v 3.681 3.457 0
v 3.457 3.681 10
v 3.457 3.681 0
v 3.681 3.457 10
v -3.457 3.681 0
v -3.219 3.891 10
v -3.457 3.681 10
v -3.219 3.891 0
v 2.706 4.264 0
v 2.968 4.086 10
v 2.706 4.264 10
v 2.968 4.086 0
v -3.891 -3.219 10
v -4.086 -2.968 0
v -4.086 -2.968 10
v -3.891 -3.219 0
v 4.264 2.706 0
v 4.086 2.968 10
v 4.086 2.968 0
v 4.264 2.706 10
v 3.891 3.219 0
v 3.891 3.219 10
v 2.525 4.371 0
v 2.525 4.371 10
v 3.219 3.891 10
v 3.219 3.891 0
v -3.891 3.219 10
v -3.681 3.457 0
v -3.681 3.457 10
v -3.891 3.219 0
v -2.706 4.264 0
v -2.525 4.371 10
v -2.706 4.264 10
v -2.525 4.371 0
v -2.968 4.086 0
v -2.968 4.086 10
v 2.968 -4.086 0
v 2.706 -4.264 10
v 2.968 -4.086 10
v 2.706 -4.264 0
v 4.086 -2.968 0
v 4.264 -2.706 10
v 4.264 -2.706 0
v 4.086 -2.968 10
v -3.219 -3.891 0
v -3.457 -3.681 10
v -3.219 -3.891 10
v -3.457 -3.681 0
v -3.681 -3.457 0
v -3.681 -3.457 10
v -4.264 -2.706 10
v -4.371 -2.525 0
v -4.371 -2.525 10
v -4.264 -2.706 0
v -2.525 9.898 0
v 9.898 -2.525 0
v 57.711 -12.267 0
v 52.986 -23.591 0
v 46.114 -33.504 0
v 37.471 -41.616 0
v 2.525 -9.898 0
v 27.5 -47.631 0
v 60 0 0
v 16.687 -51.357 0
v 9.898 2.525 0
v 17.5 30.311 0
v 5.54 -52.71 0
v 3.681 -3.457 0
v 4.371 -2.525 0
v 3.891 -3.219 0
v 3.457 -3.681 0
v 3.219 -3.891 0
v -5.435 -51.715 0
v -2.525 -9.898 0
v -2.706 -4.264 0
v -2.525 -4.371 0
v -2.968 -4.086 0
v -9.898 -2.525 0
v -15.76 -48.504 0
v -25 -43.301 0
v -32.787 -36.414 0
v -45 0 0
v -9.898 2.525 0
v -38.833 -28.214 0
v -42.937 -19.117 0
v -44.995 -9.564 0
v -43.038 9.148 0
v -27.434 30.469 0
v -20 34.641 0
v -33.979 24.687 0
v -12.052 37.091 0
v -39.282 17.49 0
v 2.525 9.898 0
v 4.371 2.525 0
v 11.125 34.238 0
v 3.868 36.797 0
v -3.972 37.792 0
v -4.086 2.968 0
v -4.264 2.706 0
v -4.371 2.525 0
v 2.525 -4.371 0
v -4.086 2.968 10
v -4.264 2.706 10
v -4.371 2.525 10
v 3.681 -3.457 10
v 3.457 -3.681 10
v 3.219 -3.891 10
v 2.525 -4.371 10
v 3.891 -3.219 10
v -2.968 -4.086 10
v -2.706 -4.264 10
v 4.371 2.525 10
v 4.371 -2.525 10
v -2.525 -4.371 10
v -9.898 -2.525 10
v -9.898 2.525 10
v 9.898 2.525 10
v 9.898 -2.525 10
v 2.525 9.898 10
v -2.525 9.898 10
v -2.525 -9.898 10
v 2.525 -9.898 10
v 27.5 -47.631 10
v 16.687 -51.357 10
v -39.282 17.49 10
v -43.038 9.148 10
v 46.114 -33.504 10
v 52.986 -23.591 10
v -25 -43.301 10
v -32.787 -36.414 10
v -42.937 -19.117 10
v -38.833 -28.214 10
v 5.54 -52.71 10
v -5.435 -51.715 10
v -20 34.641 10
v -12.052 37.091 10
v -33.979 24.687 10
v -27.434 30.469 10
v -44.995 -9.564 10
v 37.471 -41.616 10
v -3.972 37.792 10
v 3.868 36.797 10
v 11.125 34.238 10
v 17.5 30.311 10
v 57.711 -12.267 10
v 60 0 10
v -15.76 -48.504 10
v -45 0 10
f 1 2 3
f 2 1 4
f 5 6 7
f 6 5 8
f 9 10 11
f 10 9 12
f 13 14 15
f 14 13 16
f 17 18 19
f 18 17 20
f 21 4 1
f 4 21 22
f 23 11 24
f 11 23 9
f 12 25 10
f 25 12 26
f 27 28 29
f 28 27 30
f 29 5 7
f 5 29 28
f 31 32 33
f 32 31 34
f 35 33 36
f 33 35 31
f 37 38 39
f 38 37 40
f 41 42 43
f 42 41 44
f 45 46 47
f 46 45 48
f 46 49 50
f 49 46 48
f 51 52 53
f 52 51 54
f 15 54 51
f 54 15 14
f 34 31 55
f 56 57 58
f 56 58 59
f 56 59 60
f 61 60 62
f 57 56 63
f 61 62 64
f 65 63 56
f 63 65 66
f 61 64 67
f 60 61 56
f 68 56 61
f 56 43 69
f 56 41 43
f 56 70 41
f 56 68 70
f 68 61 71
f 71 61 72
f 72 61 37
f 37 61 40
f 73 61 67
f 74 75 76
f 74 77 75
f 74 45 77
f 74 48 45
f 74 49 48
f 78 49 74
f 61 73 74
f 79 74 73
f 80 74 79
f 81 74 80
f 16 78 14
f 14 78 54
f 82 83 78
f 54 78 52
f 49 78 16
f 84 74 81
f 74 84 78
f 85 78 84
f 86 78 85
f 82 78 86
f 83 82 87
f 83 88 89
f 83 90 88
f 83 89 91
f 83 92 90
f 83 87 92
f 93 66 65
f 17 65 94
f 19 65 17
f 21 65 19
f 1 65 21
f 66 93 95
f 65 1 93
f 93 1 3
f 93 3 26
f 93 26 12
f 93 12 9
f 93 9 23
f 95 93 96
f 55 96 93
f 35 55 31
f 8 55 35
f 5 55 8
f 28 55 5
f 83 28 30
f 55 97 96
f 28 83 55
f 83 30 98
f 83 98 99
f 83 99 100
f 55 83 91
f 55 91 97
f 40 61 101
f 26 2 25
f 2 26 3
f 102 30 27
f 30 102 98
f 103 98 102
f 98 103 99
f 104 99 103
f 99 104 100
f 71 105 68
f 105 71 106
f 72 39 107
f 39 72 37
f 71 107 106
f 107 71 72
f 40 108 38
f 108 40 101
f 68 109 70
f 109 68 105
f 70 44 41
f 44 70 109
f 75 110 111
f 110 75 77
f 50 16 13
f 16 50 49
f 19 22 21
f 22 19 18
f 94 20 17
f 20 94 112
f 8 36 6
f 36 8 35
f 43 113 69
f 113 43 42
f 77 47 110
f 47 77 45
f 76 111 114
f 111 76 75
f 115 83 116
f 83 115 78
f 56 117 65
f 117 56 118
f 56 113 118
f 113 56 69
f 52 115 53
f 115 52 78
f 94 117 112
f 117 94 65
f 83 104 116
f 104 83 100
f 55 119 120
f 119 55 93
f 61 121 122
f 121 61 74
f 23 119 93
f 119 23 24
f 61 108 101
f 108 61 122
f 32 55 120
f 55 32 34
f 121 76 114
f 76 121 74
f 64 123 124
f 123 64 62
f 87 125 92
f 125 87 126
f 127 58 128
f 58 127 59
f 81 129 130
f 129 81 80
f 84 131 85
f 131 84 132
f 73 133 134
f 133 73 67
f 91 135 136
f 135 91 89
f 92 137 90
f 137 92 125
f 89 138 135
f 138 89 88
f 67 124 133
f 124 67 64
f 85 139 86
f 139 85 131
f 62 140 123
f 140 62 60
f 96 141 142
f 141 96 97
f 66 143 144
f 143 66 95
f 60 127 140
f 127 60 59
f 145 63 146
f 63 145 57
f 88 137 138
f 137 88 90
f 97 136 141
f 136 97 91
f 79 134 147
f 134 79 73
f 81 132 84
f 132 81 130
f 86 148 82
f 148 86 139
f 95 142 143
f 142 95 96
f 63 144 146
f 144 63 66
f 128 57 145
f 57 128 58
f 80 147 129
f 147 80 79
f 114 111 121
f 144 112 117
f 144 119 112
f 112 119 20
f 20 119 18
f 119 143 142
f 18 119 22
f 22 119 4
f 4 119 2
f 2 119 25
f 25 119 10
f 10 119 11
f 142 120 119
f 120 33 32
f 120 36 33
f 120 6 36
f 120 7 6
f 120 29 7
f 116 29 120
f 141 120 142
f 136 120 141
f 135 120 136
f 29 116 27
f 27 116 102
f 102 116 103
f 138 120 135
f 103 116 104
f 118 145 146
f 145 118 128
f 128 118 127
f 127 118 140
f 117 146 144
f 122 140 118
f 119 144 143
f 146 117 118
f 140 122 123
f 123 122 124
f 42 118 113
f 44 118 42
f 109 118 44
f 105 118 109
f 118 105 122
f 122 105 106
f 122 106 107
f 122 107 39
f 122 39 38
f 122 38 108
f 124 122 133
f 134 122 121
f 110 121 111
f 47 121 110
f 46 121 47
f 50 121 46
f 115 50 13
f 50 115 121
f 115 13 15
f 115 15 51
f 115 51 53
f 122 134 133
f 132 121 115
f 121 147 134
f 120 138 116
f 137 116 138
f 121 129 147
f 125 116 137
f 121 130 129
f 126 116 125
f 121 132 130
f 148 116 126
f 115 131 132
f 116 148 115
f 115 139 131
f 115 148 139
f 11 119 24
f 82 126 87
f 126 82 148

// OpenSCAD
// file: lib/dogs.scad
$fn=100;


dogblock = [20,20,10];
//dog(dogblock, type="small");
//dog(dogblock, type="large");
//cornerdog(dogblock, type="small");
//cornerdog(dogblock, type="large");
//handle(dogblock[2], "small");
//handle(dogblock[2], "large");
//pressureplate(dogblock[2]);

//pressurespiral(5, 10, 15);
//pressurespiral2(dogblock[2], 10, 15);
//turnkeyspiral(dogblock[2],"large", 20, 10); //biggest one that can fit on the sides
//turnkeyspiral(dogblock[2],"large", 60, 30);
//turnkeyspiral(dogblock[2],"large", 40, 15);
//spiralhandle();

//turnkey (dogblock[2]*2, "small");
//turnkey (dogblock[2]*2, "large");


module spiralhandle() {
    height=5;
    difference() {
        hull() {
            cylinder(height, 15, 15);
            translate([55,0,0]) cylinder(height,d=15);
        }
        // scale it one percent so the key will certainly fit
        rotate([0,0,45]) scale([1.01,1.01,1.01]) turnkey(height, "large"); 
    }
    
}
//Handle to clamp the stock
//the outer circle isn't concentric to the center one (in the hole)
//by turning it we put pressure on the material. Due to friction it
//stays in place
//Turn them upside down and you can use them as a wedge to lock the
//stock in place.
//Todo:  must have the geometry wrong, as the pressure functionality
//doesn't work yet.  It can be used as a wedge though.
module handle(h, type) {
  //we use half of the height to allow the use of "pressure" plates
  //to offer more flexibility
    
    //we don't use the half height to avoid friction when turning the handle
    height = h*0.48; 
    
    dogcyl(h, type);
    hull() {
        cylinder(height, 15, 15);
        translate([55,0,0]) cylinder(height,d=15);
    }
    //cylinder on the back to keep it flat on the bed
    translate([55,0,0]) cylinder(h,d=15);
    
    platediameter = dogdiameter(type);
    shift = dogdiameter("large")-platediameter;
    //cylinder to use pressure plate
    //depending on the size we need to shift it a bit
    //we won't make two types of pressure plates
    translate([0,-shift,0]) cylinder(h,d=dogdiameter("large")*2);
    //the line above should be a spiral
}

//We want to create a spiral, that with an equal amount of turning the
//presure increases equallly
//As such, for every degree turned, the pressure point should increase with
//the same distance
module pressurespiral(h, mind, maxd) {
    cyld = 1;
    travel = maxd-mind;
    degrees = 360;
    steps = 60;
    stepinc = degrees/steps;
    steptravel = travel/(steps*stepinc);
    
    
    for(i = [0:stepinc:degrees]) {
        rotate([0,0,i]) translate([mind-cyld/2+i*steptravel,0,0])
            cylinder(h,d=cyld);
    }
}

//improved pressurespiral using polygon (more efficient to generate)
module pressurespiral2(h, mind, maxd) {
    cyld = 1;
    travel = maxd-mind;
    degrees = 360;
    steps = 30; //deliberately not too much steps to provide enough friction
    stepinc = degrees/steps;
    steptravel = travel/(steps*stepinc);

    points=[
        for(i = [0:stepinc:degrees])
            [
                (mind+i*steptravel) * cos(i),
                (mind+i*steptravel) * sin(i)
            ]
    ];
    
    //add the hull as the space it fills up anyway, and the extra volume
    //should provide some extra strength
    hull()
        linear_extrude(h) polygon(points);
}


module turnkeyspiral (h, type, maxd, mind) {
    
    keywidth = 5;
    keylength = 2*mind;
    difference() {
        pressurespiral2(h, mind, maxd);
        // scale it one percent so the key will certainly fit
        scale([1.01,1.01,1.01]) turnkey (h, type); 
    }
}

module turnkey (h, type) {
    maxd = 2*dogdiameter("large")*0.99; // slightly reduce to make sure it fits the plate well
    mind = maxd - 10;
    keywidth = 5;
    keylength = 2*mind;
        translate([0,-dogdiameter(type)/2,0]) dogcyl(h,type);
        translate([-keylength/2,-keywidth/2,0]) cube([keylength,keywidth,h]);
        rotate([0,0,90]) translate([-keylength/2,-keywidth/2,0]) cube([keylength,keywidth,h]);
   
}

module pressureplate(h) {
    //we don't use the half height to avoid friction when turning the handle
    height = h*0.48;
    dia = dogdiameter("large");
    difference() {
        cube([40,50,height]);
        translate([dia+5, dia+10,0]) cylinder(h,d=dia*2+1); //1mm larger to allow to turn
    }
}



//dog with 90 degree corner section
module cornerdog(s, type) {
    difference() {
        union() {
            half=[s[0]/2,s[1],s[2]];
            translate([-3,0,0]) finnedblock(s);
            translate([0,-s[1]+3,0]) rotate([0,0,90]) finnedblock(s);
            rotate([0,0,45]) translate([-half[0]/2,0,0]) finnedblock(half);
            d = dogdiameter (type);
            translate([-d/2,0,0]) dogcyl(s[2],type);
            
        }
        cylinder(s[2],2,2);
        translate([0,0,s[2]]) sphere(r=2);
    }
}


//complete dog with finned block and dogcylinder
module dog(s, type) {
    finnedblock(s);
    translate([s[0]/2,0]) {
        dogcyl(s[2], type);
    }    
}

//finned block to save some material when printing
module finnedblock(s,finwidth=3, findepthratio=0.7) {
    x=s[0];
    y=s[1];
    z=s[2];
    cube([x,y*(1-findepthratio),z]);
    
    //optimize by creating fins to reduce material
    //there are always an uneven number of fins; always a fin at the ends
    fincount = ceil((x/finwidth)/2);
    fingap = (x - fincount*finwidth)/(fincount-1);
    findepth = findepthratio*y;

    for(i=[0:fincount-1]) {
        translate([i*(fingap+finwidth),y-findepth,0]) {
        cube([finwidth, findepth, z], center=false);
        }
    }    
}

//cylinder to match the holes in the snapmaker wasteboard
//possible for both the large holes (used for the clamps)
//and small holes used for screwing the wasteboard to the bed
module dogcyl(h, type) {
    //OpenScad doesn't have real variables, so we can assign oonly once
    cyldiameter = dogdiameter(type);
    cylheight   = h + dogheight(type);
    cylminidiameter
                = dogminidiameter(type);
    cylminiheight
                = dogminiheight(type);
    
    translate([0,cyldiameter/2,0]) {
        cylinder(h=cylheight,d=cyldiameter);
        translate([0,0,cylheight]) {
            cylinder(h=cylminiheight,d=cylminidiameter);
        }
    }
}


//parameters to fill in
//depth and diameter of large holes
largedepth = 3.75;
largediameter = 10.00;
//and the minipart
largeminidepth = 2.50;
largeminidiameter = 3.00;

//depth and diameter of small holes
smalldepth = 3.85;
smalldiameter = 8.00;
//amd the minipart
smallminidepth=1.50;
smallminidiameter=2.40;

//OpenScad doesn't have real variables, so we can assign oonly once
//So we define some conenience functions to get the value we need for
//the parameters
//For an unknow type we return 0.  Some kind of exception might be better
function dogdiameter (type) =   type=="large" ? largediameter : 
                                type=="small" ? smalldiameter :
                                0;
function dogheight (type)   =   type=="large" ? largedepth : 
                                type=="small" ? smalldepth :
                                0;
function dogminidiameter (type)
                            =   type=="large" ? largeminidiameter : 
                                type=="small" ? smallminidiameter :
                                0;
function dogminiheight (type)
                            =   type=="large" ? largeminidepth : 
                                type=="small" ? smallminidepth :
                                0;
// main file
include <lib/dogs.scad>

turnkeyspiral(dogblock[2],"large", 60, 30);
